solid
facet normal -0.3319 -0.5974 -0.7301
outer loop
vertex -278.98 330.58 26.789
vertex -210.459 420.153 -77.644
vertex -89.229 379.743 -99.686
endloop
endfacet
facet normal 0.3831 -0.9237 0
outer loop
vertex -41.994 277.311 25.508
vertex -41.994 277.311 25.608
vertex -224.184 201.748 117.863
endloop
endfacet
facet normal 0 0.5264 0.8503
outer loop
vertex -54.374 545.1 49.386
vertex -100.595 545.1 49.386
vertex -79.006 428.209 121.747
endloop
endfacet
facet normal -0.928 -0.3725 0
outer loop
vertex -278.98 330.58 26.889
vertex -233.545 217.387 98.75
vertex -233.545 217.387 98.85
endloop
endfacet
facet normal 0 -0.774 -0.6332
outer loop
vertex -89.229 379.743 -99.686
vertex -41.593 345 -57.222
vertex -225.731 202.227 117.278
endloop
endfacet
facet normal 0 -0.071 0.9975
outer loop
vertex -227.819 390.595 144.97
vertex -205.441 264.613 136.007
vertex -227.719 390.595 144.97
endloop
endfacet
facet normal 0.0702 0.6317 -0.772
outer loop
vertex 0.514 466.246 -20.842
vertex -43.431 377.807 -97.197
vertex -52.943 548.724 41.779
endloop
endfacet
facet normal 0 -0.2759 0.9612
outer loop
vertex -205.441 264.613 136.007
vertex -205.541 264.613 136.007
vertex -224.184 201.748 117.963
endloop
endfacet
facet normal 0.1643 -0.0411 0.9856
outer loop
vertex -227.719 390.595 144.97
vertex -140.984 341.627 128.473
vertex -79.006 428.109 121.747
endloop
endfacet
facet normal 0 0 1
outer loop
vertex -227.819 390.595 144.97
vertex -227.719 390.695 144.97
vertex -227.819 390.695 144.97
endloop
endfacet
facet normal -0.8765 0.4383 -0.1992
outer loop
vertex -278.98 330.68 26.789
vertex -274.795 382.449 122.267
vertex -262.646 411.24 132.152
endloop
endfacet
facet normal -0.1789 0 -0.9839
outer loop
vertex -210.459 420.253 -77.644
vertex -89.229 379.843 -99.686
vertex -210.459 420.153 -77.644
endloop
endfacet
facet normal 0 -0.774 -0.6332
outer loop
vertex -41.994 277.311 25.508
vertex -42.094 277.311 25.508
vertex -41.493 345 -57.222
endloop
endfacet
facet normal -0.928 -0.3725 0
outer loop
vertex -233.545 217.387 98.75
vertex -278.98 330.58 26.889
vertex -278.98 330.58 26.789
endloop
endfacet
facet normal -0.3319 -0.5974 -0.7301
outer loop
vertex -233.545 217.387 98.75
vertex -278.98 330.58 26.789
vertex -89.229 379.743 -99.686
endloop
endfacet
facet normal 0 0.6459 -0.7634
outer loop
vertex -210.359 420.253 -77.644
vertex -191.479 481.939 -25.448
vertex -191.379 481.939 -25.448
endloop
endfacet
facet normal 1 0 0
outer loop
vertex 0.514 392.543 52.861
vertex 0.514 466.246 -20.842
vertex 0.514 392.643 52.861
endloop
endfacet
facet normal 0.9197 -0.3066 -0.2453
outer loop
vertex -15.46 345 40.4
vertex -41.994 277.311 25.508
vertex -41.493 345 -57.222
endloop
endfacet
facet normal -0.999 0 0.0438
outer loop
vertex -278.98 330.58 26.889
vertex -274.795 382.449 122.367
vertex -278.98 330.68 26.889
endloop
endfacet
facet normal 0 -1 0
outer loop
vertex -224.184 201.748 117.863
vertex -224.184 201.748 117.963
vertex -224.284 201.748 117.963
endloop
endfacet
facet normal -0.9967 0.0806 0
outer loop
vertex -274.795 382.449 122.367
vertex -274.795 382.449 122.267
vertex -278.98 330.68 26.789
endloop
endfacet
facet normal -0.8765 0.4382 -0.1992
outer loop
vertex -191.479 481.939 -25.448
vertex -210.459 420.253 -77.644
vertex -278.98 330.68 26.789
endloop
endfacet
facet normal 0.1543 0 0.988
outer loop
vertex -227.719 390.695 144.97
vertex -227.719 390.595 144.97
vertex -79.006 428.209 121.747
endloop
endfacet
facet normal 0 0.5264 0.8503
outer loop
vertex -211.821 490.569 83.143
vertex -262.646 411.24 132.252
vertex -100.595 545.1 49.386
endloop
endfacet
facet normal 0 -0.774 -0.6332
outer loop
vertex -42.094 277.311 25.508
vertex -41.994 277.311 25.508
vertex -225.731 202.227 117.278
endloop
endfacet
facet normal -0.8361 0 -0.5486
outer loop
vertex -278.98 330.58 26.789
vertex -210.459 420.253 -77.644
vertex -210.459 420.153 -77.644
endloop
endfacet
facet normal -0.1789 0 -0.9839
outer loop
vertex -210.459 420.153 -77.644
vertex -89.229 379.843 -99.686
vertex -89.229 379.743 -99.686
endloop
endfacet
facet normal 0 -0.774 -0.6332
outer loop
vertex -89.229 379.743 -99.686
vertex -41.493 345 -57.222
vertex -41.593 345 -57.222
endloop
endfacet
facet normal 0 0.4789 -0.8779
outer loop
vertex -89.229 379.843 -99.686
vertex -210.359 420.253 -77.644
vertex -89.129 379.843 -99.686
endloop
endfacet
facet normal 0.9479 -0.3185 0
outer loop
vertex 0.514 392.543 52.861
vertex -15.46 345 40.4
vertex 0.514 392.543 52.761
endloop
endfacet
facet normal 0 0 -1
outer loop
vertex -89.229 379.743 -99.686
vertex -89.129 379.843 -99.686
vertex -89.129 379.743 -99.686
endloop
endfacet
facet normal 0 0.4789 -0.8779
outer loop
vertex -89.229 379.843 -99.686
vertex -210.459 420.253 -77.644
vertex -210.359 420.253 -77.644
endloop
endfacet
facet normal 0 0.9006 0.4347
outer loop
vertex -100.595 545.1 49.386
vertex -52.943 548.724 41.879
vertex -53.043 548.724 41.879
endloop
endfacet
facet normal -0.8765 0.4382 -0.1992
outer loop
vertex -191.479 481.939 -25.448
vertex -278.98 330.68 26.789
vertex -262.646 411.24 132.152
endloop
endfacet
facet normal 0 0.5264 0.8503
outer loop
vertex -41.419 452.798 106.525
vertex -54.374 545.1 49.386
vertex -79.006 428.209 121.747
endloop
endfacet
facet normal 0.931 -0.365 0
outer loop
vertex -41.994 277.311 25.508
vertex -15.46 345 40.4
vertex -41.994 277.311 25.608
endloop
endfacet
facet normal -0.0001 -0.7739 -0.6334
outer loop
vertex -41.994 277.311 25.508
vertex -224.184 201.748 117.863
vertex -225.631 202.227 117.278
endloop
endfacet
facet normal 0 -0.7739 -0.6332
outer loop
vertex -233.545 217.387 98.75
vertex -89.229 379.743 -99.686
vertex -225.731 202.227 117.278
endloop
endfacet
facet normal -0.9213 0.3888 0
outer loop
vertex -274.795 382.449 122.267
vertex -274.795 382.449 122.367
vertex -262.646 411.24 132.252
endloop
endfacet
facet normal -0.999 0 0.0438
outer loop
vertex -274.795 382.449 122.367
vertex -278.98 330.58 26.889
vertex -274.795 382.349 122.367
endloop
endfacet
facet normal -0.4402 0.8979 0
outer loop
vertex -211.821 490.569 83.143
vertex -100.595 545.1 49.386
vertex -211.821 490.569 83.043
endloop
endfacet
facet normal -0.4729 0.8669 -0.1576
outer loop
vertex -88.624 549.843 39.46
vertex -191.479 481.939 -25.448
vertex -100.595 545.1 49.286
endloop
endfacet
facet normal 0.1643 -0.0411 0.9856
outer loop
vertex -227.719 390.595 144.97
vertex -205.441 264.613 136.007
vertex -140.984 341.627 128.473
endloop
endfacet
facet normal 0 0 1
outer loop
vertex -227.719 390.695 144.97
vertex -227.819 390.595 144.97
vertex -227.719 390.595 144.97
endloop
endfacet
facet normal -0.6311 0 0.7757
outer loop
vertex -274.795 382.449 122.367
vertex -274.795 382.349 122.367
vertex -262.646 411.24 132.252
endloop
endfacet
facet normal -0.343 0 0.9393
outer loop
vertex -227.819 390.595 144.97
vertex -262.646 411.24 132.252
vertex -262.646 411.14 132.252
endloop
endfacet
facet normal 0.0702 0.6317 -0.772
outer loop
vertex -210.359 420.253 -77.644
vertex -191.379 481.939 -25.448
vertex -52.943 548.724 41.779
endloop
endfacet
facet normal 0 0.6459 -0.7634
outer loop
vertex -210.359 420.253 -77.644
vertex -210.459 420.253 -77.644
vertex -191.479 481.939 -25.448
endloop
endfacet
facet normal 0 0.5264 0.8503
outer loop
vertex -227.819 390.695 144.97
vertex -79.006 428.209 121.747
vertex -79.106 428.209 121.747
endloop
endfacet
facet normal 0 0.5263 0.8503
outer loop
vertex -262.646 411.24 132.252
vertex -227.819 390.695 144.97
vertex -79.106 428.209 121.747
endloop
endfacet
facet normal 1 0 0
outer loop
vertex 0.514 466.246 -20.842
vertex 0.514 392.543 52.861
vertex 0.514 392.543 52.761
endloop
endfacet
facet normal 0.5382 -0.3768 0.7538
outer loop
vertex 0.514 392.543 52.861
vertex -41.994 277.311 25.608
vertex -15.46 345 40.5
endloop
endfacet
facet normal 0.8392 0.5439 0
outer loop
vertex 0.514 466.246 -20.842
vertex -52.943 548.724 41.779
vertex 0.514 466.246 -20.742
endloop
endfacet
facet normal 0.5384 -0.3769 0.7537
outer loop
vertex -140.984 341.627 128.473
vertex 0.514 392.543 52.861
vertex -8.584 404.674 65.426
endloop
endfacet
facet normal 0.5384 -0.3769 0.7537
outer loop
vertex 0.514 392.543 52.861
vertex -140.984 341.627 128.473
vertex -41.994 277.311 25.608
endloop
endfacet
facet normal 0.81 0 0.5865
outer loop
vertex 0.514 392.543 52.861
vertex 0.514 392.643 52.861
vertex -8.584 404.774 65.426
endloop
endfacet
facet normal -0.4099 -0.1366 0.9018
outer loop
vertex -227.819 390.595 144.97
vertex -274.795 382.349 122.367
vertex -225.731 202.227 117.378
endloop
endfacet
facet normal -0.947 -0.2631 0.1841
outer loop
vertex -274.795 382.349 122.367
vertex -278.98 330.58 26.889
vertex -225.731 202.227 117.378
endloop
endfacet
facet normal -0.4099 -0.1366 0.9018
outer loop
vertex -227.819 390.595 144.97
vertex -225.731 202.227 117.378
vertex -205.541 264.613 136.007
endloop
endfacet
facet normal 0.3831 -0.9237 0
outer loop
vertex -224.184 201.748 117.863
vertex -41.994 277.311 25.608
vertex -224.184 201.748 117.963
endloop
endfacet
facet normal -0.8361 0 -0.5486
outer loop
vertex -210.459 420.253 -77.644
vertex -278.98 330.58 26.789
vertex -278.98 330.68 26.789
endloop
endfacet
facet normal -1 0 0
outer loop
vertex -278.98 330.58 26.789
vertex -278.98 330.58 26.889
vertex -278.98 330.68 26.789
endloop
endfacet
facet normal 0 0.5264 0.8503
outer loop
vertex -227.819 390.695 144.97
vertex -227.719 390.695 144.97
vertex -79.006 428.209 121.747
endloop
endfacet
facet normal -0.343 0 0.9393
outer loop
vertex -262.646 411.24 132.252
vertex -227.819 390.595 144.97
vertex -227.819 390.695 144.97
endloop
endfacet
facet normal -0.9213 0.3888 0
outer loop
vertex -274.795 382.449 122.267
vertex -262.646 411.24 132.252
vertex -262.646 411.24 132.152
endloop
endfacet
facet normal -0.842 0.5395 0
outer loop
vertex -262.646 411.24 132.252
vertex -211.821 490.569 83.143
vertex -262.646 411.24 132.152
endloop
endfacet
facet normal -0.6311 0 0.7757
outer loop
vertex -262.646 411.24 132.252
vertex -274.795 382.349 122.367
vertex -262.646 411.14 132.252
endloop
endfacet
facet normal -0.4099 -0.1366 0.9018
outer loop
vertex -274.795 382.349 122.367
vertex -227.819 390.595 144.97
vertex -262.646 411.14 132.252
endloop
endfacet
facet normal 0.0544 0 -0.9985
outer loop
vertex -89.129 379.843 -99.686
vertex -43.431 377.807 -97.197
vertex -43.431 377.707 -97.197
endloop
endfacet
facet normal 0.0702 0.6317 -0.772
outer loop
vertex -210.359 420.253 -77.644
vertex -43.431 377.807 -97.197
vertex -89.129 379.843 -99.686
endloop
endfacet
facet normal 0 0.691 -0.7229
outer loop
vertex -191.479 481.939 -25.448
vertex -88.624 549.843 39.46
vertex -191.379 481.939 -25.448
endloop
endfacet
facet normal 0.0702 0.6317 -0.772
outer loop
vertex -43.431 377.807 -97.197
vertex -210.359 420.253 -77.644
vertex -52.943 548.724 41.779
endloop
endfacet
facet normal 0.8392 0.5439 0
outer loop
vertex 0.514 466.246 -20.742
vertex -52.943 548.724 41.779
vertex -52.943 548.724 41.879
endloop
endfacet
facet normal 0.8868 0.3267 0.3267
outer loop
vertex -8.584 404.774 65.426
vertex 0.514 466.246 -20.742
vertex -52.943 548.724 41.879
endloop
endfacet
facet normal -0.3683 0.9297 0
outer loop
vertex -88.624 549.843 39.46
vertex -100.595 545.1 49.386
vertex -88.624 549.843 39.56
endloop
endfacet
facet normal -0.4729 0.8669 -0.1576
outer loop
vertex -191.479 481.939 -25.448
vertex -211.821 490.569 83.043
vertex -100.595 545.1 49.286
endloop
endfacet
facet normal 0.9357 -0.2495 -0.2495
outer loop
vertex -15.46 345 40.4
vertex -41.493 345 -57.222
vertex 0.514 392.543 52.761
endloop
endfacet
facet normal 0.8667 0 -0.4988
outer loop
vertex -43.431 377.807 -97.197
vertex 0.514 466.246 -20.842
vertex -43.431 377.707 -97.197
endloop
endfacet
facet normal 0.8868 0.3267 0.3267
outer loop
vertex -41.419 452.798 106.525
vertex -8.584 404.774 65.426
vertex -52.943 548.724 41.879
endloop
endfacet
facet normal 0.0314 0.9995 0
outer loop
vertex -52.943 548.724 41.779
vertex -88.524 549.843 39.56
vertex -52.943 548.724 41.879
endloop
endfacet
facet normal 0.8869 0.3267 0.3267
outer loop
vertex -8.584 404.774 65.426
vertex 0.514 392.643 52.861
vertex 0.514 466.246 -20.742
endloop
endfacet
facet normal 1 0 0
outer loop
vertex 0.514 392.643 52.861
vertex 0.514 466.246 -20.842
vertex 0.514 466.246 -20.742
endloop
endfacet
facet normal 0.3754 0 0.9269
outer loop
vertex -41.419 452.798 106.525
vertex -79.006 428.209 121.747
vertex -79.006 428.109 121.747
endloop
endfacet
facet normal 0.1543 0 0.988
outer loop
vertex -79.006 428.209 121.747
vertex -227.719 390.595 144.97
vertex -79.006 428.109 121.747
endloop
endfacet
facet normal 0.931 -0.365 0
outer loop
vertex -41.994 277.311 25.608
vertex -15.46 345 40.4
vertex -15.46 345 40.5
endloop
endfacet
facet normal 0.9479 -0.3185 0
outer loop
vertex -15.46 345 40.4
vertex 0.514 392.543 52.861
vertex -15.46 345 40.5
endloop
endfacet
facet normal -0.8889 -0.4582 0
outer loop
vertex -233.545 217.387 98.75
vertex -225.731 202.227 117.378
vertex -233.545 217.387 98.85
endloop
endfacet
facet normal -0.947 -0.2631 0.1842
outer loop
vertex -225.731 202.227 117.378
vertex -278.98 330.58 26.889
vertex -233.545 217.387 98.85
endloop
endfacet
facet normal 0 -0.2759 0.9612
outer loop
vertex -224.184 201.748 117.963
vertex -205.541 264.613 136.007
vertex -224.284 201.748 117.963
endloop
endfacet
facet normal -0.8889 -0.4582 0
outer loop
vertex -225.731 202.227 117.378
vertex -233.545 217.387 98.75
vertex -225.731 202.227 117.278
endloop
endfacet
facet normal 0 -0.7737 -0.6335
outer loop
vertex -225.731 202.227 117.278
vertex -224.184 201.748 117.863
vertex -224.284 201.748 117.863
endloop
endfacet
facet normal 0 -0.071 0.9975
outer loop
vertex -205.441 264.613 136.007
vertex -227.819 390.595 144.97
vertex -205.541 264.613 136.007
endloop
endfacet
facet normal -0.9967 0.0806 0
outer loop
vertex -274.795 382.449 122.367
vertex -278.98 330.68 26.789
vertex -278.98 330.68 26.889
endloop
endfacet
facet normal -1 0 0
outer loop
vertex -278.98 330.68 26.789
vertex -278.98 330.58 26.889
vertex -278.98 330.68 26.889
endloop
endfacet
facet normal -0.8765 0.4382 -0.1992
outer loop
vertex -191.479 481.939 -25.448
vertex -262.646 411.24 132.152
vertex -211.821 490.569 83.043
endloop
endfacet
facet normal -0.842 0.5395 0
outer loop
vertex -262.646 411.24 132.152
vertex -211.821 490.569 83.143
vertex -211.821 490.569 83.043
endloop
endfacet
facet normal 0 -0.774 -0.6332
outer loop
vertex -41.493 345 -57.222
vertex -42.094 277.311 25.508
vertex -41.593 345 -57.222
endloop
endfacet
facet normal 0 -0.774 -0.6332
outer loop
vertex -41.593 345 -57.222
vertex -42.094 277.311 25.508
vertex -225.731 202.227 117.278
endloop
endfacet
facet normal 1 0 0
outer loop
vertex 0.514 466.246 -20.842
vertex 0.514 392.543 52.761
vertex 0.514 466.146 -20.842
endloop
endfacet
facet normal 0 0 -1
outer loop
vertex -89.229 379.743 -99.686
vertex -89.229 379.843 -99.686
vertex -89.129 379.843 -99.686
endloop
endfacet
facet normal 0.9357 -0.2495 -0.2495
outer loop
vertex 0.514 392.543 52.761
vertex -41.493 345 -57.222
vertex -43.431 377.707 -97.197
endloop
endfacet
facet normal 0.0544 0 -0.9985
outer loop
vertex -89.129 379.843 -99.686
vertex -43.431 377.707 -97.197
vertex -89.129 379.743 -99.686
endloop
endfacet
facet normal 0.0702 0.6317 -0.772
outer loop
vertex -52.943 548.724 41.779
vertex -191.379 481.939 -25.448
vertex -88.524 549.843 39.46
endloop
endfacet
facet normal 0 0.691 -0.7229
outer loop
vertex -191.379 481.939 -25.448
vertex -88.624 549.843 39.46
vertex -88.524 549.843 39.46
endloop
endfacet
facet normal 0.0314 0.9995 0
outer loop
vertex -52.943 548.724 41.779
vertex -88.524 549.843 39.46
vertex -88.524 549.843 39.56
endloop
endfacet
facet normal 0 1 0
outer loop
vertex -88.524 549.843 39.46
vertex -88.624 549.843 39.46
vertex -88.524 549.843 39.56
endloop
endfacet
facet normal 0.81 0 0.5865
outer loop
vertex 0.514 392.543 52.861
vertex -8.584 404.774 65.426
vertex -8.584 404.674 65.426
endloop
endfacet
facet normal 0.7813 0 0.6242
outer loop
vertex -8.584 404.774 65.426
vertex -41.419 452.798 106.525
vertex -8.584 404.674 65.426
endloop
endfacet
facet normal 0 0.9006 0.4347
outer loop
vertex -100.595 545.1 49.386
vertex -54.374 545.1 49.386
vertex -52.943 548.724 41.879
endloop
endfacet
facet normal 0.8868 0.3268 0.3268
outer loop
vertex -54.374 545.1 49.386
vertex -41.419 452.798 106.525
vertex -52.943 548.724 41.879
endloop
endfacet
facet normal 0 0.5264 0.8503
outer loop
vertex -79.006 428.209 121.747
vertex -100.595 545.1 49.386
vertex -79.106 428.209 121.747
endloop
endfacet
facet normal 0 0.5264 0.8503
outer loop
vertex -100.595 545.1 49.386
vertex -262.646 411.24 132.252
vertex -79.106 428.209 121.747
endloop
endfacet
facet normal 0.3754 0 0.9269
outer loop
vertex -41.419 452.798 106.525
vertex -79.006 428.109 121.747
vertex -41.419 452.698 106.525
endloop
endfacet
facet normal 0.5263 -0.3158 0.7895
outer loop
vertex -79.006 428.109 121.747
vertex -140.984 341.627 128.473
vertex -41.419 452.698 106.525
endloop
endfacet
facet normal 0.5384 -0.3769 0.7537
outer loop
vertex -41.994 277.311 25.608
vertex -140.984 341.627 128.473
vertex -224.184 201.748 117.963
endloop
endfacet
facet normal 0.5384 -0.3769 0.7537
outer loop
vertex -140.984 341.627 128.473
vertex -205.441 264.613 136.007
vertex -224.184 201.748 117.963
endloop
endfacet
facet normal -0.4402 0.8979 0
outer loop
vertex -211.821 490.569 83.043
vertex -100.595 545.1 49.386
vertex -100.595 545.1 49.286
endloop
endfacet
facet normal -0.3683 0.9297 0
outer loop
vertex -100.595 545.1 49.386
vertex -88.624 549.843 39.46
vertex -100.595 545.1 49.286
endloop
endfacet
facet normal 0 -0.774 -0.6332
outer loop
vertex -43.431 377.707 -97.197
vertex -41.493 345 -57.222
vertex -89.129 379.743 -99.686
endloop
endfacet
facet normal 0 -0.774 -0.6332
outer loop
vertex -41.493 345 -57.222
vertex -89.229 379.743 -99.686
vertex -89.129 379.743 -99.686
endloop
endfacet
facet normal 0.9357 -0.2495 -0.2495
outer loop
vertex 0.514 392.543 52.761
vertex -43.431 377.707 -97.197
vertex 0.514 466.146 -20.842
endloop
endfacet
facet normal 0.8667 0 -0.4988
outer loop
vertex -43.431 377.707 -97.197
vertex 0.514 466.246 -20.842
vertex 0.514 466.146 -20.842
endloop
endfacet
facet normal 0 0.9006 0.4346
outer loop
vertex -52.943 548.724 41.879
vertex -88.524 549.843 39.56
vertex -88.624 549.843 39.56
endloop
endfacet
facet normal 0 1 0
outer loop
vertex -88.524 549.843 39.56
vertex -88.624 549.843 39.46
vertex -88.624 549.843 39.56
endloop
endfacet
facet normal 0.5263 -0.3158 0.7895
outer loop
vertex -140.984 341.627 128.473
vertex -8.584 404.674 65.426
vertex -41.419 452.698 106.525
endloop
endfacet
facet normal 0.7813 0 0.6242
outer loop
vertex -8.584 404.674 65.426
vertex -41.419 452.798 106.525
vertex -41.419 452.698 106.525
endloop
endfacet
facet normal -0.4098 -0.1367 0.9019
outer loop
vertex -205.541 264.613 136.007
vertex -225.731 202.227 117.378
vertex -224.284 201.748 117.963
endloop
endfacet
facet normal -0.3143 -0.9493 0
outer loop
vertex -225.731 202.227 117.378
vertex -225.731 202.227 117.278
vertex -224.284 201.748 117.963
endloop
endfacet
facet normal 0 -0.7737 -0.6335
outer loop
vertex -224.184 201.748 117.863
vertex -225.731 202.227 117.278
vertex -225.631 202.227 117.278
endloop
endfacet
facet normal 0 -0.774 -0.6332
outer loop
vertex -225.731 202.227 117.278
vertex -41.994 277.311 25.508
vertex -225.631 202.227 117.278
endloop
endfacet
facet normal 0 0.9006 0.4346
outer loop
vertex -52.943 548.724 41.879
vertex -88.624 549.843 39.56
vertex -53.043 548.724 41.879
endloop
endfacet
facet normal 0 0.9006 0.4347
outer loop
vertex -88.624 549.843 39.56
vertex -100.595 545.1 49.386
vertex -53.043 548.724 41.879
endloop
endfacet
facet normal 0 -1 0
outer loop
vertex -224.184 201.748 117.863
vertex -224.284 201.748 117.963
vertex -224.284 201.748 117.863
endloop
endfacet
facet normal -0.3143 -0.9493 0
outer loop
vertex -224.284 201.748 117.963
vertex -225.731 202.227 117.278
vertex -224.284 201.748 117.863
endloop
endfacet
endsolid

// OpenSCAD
hull(){ translate([-278.980034285,330.580316628,26.7888474337])cube(0.1,0.1,0.1);
translate([-274.795102175,382.349476798,122.267298526])cube(0.1,0.1,0.1);
translate([-262.646404744,411.139733136,132.151593773])cube(0.1,0.1,0.1);
translate([-227.818679007,390.595288178,144.869583509])cube(0.1,0.1,0.1);
translate([-210.458996328,420.152998776,-77.6438188494])cube(0.1,0.1,0.1);
translate([-225.731346959,202.22728392,117.277764098])cube(0.1,0.1,0.1);
translate([-233.545054945,217.386813187,98.7494505495])cube(0.1,0.1,0.1);
translate([-205.541317992,264.612970711,135.907426778])cube(0.1,0.1,0.1);
translate([-191.478567553,481.839392295,-25.4476397179])cube(0.1,0.1,0.1);
translate([-211.820526044,490.469314079,83.0428055699])cube(0.1,0.1,0.1);
translate([-141.084337349,341.626506024,128.373493976])cube(0.1,0.1,0.1);
translate([-79.1055718475,428.108504399,121.647116325])cube(0.1,0.1,0.1);
translate([-224.284253579,201.748466258,117.862985685])cube(0.1,0.1,0.1);
translate([-88.6242192922,549.743233865,39.460444136])cube(0.1,0.1,0.1);
translate([-100.595238095,545.0,49.2857142857])cube(0.1,0.1,0.1);
translate([-89.2285714286,379.742857143,-99.6857142857])cube(0.1,0.1,0.1);
translate([-53.0432242991,548.623831776,41.7792056075])cube(0.1,0.1,0.1);
translate([-54.4736842105,545.0,49.2857142857])cube(0.1,0.1,0.1);
translate([-8.68421052632,404.674185464,65.3258145363])cube(0.1,0.1,0.1);
translate([-41.5189968464,452.69785253,106.42513891])cube(0.1,0.1,0.1);
translate([-43.5307743216,377.706816678,-97.1972203839])cube(0.1,0.1,0.1);
translate([0.414364640884,392.542751907,52.7611154959])cube(0.1,0.1,0.1);
translate([0.414364640884,466.14640884,-20.8425414365])cube(0.1,0.1,0.1);
translate([-15.56,345.0,40.4])cube(0.1,0.1,0.1);
translate([-41.5925925926,345.0,-57.2222222222])cube(0.1,0.1,0.1);
translate([-42.093990755,277.311248074,25.5084745763])cube(0.1,0.1,0.1); }
